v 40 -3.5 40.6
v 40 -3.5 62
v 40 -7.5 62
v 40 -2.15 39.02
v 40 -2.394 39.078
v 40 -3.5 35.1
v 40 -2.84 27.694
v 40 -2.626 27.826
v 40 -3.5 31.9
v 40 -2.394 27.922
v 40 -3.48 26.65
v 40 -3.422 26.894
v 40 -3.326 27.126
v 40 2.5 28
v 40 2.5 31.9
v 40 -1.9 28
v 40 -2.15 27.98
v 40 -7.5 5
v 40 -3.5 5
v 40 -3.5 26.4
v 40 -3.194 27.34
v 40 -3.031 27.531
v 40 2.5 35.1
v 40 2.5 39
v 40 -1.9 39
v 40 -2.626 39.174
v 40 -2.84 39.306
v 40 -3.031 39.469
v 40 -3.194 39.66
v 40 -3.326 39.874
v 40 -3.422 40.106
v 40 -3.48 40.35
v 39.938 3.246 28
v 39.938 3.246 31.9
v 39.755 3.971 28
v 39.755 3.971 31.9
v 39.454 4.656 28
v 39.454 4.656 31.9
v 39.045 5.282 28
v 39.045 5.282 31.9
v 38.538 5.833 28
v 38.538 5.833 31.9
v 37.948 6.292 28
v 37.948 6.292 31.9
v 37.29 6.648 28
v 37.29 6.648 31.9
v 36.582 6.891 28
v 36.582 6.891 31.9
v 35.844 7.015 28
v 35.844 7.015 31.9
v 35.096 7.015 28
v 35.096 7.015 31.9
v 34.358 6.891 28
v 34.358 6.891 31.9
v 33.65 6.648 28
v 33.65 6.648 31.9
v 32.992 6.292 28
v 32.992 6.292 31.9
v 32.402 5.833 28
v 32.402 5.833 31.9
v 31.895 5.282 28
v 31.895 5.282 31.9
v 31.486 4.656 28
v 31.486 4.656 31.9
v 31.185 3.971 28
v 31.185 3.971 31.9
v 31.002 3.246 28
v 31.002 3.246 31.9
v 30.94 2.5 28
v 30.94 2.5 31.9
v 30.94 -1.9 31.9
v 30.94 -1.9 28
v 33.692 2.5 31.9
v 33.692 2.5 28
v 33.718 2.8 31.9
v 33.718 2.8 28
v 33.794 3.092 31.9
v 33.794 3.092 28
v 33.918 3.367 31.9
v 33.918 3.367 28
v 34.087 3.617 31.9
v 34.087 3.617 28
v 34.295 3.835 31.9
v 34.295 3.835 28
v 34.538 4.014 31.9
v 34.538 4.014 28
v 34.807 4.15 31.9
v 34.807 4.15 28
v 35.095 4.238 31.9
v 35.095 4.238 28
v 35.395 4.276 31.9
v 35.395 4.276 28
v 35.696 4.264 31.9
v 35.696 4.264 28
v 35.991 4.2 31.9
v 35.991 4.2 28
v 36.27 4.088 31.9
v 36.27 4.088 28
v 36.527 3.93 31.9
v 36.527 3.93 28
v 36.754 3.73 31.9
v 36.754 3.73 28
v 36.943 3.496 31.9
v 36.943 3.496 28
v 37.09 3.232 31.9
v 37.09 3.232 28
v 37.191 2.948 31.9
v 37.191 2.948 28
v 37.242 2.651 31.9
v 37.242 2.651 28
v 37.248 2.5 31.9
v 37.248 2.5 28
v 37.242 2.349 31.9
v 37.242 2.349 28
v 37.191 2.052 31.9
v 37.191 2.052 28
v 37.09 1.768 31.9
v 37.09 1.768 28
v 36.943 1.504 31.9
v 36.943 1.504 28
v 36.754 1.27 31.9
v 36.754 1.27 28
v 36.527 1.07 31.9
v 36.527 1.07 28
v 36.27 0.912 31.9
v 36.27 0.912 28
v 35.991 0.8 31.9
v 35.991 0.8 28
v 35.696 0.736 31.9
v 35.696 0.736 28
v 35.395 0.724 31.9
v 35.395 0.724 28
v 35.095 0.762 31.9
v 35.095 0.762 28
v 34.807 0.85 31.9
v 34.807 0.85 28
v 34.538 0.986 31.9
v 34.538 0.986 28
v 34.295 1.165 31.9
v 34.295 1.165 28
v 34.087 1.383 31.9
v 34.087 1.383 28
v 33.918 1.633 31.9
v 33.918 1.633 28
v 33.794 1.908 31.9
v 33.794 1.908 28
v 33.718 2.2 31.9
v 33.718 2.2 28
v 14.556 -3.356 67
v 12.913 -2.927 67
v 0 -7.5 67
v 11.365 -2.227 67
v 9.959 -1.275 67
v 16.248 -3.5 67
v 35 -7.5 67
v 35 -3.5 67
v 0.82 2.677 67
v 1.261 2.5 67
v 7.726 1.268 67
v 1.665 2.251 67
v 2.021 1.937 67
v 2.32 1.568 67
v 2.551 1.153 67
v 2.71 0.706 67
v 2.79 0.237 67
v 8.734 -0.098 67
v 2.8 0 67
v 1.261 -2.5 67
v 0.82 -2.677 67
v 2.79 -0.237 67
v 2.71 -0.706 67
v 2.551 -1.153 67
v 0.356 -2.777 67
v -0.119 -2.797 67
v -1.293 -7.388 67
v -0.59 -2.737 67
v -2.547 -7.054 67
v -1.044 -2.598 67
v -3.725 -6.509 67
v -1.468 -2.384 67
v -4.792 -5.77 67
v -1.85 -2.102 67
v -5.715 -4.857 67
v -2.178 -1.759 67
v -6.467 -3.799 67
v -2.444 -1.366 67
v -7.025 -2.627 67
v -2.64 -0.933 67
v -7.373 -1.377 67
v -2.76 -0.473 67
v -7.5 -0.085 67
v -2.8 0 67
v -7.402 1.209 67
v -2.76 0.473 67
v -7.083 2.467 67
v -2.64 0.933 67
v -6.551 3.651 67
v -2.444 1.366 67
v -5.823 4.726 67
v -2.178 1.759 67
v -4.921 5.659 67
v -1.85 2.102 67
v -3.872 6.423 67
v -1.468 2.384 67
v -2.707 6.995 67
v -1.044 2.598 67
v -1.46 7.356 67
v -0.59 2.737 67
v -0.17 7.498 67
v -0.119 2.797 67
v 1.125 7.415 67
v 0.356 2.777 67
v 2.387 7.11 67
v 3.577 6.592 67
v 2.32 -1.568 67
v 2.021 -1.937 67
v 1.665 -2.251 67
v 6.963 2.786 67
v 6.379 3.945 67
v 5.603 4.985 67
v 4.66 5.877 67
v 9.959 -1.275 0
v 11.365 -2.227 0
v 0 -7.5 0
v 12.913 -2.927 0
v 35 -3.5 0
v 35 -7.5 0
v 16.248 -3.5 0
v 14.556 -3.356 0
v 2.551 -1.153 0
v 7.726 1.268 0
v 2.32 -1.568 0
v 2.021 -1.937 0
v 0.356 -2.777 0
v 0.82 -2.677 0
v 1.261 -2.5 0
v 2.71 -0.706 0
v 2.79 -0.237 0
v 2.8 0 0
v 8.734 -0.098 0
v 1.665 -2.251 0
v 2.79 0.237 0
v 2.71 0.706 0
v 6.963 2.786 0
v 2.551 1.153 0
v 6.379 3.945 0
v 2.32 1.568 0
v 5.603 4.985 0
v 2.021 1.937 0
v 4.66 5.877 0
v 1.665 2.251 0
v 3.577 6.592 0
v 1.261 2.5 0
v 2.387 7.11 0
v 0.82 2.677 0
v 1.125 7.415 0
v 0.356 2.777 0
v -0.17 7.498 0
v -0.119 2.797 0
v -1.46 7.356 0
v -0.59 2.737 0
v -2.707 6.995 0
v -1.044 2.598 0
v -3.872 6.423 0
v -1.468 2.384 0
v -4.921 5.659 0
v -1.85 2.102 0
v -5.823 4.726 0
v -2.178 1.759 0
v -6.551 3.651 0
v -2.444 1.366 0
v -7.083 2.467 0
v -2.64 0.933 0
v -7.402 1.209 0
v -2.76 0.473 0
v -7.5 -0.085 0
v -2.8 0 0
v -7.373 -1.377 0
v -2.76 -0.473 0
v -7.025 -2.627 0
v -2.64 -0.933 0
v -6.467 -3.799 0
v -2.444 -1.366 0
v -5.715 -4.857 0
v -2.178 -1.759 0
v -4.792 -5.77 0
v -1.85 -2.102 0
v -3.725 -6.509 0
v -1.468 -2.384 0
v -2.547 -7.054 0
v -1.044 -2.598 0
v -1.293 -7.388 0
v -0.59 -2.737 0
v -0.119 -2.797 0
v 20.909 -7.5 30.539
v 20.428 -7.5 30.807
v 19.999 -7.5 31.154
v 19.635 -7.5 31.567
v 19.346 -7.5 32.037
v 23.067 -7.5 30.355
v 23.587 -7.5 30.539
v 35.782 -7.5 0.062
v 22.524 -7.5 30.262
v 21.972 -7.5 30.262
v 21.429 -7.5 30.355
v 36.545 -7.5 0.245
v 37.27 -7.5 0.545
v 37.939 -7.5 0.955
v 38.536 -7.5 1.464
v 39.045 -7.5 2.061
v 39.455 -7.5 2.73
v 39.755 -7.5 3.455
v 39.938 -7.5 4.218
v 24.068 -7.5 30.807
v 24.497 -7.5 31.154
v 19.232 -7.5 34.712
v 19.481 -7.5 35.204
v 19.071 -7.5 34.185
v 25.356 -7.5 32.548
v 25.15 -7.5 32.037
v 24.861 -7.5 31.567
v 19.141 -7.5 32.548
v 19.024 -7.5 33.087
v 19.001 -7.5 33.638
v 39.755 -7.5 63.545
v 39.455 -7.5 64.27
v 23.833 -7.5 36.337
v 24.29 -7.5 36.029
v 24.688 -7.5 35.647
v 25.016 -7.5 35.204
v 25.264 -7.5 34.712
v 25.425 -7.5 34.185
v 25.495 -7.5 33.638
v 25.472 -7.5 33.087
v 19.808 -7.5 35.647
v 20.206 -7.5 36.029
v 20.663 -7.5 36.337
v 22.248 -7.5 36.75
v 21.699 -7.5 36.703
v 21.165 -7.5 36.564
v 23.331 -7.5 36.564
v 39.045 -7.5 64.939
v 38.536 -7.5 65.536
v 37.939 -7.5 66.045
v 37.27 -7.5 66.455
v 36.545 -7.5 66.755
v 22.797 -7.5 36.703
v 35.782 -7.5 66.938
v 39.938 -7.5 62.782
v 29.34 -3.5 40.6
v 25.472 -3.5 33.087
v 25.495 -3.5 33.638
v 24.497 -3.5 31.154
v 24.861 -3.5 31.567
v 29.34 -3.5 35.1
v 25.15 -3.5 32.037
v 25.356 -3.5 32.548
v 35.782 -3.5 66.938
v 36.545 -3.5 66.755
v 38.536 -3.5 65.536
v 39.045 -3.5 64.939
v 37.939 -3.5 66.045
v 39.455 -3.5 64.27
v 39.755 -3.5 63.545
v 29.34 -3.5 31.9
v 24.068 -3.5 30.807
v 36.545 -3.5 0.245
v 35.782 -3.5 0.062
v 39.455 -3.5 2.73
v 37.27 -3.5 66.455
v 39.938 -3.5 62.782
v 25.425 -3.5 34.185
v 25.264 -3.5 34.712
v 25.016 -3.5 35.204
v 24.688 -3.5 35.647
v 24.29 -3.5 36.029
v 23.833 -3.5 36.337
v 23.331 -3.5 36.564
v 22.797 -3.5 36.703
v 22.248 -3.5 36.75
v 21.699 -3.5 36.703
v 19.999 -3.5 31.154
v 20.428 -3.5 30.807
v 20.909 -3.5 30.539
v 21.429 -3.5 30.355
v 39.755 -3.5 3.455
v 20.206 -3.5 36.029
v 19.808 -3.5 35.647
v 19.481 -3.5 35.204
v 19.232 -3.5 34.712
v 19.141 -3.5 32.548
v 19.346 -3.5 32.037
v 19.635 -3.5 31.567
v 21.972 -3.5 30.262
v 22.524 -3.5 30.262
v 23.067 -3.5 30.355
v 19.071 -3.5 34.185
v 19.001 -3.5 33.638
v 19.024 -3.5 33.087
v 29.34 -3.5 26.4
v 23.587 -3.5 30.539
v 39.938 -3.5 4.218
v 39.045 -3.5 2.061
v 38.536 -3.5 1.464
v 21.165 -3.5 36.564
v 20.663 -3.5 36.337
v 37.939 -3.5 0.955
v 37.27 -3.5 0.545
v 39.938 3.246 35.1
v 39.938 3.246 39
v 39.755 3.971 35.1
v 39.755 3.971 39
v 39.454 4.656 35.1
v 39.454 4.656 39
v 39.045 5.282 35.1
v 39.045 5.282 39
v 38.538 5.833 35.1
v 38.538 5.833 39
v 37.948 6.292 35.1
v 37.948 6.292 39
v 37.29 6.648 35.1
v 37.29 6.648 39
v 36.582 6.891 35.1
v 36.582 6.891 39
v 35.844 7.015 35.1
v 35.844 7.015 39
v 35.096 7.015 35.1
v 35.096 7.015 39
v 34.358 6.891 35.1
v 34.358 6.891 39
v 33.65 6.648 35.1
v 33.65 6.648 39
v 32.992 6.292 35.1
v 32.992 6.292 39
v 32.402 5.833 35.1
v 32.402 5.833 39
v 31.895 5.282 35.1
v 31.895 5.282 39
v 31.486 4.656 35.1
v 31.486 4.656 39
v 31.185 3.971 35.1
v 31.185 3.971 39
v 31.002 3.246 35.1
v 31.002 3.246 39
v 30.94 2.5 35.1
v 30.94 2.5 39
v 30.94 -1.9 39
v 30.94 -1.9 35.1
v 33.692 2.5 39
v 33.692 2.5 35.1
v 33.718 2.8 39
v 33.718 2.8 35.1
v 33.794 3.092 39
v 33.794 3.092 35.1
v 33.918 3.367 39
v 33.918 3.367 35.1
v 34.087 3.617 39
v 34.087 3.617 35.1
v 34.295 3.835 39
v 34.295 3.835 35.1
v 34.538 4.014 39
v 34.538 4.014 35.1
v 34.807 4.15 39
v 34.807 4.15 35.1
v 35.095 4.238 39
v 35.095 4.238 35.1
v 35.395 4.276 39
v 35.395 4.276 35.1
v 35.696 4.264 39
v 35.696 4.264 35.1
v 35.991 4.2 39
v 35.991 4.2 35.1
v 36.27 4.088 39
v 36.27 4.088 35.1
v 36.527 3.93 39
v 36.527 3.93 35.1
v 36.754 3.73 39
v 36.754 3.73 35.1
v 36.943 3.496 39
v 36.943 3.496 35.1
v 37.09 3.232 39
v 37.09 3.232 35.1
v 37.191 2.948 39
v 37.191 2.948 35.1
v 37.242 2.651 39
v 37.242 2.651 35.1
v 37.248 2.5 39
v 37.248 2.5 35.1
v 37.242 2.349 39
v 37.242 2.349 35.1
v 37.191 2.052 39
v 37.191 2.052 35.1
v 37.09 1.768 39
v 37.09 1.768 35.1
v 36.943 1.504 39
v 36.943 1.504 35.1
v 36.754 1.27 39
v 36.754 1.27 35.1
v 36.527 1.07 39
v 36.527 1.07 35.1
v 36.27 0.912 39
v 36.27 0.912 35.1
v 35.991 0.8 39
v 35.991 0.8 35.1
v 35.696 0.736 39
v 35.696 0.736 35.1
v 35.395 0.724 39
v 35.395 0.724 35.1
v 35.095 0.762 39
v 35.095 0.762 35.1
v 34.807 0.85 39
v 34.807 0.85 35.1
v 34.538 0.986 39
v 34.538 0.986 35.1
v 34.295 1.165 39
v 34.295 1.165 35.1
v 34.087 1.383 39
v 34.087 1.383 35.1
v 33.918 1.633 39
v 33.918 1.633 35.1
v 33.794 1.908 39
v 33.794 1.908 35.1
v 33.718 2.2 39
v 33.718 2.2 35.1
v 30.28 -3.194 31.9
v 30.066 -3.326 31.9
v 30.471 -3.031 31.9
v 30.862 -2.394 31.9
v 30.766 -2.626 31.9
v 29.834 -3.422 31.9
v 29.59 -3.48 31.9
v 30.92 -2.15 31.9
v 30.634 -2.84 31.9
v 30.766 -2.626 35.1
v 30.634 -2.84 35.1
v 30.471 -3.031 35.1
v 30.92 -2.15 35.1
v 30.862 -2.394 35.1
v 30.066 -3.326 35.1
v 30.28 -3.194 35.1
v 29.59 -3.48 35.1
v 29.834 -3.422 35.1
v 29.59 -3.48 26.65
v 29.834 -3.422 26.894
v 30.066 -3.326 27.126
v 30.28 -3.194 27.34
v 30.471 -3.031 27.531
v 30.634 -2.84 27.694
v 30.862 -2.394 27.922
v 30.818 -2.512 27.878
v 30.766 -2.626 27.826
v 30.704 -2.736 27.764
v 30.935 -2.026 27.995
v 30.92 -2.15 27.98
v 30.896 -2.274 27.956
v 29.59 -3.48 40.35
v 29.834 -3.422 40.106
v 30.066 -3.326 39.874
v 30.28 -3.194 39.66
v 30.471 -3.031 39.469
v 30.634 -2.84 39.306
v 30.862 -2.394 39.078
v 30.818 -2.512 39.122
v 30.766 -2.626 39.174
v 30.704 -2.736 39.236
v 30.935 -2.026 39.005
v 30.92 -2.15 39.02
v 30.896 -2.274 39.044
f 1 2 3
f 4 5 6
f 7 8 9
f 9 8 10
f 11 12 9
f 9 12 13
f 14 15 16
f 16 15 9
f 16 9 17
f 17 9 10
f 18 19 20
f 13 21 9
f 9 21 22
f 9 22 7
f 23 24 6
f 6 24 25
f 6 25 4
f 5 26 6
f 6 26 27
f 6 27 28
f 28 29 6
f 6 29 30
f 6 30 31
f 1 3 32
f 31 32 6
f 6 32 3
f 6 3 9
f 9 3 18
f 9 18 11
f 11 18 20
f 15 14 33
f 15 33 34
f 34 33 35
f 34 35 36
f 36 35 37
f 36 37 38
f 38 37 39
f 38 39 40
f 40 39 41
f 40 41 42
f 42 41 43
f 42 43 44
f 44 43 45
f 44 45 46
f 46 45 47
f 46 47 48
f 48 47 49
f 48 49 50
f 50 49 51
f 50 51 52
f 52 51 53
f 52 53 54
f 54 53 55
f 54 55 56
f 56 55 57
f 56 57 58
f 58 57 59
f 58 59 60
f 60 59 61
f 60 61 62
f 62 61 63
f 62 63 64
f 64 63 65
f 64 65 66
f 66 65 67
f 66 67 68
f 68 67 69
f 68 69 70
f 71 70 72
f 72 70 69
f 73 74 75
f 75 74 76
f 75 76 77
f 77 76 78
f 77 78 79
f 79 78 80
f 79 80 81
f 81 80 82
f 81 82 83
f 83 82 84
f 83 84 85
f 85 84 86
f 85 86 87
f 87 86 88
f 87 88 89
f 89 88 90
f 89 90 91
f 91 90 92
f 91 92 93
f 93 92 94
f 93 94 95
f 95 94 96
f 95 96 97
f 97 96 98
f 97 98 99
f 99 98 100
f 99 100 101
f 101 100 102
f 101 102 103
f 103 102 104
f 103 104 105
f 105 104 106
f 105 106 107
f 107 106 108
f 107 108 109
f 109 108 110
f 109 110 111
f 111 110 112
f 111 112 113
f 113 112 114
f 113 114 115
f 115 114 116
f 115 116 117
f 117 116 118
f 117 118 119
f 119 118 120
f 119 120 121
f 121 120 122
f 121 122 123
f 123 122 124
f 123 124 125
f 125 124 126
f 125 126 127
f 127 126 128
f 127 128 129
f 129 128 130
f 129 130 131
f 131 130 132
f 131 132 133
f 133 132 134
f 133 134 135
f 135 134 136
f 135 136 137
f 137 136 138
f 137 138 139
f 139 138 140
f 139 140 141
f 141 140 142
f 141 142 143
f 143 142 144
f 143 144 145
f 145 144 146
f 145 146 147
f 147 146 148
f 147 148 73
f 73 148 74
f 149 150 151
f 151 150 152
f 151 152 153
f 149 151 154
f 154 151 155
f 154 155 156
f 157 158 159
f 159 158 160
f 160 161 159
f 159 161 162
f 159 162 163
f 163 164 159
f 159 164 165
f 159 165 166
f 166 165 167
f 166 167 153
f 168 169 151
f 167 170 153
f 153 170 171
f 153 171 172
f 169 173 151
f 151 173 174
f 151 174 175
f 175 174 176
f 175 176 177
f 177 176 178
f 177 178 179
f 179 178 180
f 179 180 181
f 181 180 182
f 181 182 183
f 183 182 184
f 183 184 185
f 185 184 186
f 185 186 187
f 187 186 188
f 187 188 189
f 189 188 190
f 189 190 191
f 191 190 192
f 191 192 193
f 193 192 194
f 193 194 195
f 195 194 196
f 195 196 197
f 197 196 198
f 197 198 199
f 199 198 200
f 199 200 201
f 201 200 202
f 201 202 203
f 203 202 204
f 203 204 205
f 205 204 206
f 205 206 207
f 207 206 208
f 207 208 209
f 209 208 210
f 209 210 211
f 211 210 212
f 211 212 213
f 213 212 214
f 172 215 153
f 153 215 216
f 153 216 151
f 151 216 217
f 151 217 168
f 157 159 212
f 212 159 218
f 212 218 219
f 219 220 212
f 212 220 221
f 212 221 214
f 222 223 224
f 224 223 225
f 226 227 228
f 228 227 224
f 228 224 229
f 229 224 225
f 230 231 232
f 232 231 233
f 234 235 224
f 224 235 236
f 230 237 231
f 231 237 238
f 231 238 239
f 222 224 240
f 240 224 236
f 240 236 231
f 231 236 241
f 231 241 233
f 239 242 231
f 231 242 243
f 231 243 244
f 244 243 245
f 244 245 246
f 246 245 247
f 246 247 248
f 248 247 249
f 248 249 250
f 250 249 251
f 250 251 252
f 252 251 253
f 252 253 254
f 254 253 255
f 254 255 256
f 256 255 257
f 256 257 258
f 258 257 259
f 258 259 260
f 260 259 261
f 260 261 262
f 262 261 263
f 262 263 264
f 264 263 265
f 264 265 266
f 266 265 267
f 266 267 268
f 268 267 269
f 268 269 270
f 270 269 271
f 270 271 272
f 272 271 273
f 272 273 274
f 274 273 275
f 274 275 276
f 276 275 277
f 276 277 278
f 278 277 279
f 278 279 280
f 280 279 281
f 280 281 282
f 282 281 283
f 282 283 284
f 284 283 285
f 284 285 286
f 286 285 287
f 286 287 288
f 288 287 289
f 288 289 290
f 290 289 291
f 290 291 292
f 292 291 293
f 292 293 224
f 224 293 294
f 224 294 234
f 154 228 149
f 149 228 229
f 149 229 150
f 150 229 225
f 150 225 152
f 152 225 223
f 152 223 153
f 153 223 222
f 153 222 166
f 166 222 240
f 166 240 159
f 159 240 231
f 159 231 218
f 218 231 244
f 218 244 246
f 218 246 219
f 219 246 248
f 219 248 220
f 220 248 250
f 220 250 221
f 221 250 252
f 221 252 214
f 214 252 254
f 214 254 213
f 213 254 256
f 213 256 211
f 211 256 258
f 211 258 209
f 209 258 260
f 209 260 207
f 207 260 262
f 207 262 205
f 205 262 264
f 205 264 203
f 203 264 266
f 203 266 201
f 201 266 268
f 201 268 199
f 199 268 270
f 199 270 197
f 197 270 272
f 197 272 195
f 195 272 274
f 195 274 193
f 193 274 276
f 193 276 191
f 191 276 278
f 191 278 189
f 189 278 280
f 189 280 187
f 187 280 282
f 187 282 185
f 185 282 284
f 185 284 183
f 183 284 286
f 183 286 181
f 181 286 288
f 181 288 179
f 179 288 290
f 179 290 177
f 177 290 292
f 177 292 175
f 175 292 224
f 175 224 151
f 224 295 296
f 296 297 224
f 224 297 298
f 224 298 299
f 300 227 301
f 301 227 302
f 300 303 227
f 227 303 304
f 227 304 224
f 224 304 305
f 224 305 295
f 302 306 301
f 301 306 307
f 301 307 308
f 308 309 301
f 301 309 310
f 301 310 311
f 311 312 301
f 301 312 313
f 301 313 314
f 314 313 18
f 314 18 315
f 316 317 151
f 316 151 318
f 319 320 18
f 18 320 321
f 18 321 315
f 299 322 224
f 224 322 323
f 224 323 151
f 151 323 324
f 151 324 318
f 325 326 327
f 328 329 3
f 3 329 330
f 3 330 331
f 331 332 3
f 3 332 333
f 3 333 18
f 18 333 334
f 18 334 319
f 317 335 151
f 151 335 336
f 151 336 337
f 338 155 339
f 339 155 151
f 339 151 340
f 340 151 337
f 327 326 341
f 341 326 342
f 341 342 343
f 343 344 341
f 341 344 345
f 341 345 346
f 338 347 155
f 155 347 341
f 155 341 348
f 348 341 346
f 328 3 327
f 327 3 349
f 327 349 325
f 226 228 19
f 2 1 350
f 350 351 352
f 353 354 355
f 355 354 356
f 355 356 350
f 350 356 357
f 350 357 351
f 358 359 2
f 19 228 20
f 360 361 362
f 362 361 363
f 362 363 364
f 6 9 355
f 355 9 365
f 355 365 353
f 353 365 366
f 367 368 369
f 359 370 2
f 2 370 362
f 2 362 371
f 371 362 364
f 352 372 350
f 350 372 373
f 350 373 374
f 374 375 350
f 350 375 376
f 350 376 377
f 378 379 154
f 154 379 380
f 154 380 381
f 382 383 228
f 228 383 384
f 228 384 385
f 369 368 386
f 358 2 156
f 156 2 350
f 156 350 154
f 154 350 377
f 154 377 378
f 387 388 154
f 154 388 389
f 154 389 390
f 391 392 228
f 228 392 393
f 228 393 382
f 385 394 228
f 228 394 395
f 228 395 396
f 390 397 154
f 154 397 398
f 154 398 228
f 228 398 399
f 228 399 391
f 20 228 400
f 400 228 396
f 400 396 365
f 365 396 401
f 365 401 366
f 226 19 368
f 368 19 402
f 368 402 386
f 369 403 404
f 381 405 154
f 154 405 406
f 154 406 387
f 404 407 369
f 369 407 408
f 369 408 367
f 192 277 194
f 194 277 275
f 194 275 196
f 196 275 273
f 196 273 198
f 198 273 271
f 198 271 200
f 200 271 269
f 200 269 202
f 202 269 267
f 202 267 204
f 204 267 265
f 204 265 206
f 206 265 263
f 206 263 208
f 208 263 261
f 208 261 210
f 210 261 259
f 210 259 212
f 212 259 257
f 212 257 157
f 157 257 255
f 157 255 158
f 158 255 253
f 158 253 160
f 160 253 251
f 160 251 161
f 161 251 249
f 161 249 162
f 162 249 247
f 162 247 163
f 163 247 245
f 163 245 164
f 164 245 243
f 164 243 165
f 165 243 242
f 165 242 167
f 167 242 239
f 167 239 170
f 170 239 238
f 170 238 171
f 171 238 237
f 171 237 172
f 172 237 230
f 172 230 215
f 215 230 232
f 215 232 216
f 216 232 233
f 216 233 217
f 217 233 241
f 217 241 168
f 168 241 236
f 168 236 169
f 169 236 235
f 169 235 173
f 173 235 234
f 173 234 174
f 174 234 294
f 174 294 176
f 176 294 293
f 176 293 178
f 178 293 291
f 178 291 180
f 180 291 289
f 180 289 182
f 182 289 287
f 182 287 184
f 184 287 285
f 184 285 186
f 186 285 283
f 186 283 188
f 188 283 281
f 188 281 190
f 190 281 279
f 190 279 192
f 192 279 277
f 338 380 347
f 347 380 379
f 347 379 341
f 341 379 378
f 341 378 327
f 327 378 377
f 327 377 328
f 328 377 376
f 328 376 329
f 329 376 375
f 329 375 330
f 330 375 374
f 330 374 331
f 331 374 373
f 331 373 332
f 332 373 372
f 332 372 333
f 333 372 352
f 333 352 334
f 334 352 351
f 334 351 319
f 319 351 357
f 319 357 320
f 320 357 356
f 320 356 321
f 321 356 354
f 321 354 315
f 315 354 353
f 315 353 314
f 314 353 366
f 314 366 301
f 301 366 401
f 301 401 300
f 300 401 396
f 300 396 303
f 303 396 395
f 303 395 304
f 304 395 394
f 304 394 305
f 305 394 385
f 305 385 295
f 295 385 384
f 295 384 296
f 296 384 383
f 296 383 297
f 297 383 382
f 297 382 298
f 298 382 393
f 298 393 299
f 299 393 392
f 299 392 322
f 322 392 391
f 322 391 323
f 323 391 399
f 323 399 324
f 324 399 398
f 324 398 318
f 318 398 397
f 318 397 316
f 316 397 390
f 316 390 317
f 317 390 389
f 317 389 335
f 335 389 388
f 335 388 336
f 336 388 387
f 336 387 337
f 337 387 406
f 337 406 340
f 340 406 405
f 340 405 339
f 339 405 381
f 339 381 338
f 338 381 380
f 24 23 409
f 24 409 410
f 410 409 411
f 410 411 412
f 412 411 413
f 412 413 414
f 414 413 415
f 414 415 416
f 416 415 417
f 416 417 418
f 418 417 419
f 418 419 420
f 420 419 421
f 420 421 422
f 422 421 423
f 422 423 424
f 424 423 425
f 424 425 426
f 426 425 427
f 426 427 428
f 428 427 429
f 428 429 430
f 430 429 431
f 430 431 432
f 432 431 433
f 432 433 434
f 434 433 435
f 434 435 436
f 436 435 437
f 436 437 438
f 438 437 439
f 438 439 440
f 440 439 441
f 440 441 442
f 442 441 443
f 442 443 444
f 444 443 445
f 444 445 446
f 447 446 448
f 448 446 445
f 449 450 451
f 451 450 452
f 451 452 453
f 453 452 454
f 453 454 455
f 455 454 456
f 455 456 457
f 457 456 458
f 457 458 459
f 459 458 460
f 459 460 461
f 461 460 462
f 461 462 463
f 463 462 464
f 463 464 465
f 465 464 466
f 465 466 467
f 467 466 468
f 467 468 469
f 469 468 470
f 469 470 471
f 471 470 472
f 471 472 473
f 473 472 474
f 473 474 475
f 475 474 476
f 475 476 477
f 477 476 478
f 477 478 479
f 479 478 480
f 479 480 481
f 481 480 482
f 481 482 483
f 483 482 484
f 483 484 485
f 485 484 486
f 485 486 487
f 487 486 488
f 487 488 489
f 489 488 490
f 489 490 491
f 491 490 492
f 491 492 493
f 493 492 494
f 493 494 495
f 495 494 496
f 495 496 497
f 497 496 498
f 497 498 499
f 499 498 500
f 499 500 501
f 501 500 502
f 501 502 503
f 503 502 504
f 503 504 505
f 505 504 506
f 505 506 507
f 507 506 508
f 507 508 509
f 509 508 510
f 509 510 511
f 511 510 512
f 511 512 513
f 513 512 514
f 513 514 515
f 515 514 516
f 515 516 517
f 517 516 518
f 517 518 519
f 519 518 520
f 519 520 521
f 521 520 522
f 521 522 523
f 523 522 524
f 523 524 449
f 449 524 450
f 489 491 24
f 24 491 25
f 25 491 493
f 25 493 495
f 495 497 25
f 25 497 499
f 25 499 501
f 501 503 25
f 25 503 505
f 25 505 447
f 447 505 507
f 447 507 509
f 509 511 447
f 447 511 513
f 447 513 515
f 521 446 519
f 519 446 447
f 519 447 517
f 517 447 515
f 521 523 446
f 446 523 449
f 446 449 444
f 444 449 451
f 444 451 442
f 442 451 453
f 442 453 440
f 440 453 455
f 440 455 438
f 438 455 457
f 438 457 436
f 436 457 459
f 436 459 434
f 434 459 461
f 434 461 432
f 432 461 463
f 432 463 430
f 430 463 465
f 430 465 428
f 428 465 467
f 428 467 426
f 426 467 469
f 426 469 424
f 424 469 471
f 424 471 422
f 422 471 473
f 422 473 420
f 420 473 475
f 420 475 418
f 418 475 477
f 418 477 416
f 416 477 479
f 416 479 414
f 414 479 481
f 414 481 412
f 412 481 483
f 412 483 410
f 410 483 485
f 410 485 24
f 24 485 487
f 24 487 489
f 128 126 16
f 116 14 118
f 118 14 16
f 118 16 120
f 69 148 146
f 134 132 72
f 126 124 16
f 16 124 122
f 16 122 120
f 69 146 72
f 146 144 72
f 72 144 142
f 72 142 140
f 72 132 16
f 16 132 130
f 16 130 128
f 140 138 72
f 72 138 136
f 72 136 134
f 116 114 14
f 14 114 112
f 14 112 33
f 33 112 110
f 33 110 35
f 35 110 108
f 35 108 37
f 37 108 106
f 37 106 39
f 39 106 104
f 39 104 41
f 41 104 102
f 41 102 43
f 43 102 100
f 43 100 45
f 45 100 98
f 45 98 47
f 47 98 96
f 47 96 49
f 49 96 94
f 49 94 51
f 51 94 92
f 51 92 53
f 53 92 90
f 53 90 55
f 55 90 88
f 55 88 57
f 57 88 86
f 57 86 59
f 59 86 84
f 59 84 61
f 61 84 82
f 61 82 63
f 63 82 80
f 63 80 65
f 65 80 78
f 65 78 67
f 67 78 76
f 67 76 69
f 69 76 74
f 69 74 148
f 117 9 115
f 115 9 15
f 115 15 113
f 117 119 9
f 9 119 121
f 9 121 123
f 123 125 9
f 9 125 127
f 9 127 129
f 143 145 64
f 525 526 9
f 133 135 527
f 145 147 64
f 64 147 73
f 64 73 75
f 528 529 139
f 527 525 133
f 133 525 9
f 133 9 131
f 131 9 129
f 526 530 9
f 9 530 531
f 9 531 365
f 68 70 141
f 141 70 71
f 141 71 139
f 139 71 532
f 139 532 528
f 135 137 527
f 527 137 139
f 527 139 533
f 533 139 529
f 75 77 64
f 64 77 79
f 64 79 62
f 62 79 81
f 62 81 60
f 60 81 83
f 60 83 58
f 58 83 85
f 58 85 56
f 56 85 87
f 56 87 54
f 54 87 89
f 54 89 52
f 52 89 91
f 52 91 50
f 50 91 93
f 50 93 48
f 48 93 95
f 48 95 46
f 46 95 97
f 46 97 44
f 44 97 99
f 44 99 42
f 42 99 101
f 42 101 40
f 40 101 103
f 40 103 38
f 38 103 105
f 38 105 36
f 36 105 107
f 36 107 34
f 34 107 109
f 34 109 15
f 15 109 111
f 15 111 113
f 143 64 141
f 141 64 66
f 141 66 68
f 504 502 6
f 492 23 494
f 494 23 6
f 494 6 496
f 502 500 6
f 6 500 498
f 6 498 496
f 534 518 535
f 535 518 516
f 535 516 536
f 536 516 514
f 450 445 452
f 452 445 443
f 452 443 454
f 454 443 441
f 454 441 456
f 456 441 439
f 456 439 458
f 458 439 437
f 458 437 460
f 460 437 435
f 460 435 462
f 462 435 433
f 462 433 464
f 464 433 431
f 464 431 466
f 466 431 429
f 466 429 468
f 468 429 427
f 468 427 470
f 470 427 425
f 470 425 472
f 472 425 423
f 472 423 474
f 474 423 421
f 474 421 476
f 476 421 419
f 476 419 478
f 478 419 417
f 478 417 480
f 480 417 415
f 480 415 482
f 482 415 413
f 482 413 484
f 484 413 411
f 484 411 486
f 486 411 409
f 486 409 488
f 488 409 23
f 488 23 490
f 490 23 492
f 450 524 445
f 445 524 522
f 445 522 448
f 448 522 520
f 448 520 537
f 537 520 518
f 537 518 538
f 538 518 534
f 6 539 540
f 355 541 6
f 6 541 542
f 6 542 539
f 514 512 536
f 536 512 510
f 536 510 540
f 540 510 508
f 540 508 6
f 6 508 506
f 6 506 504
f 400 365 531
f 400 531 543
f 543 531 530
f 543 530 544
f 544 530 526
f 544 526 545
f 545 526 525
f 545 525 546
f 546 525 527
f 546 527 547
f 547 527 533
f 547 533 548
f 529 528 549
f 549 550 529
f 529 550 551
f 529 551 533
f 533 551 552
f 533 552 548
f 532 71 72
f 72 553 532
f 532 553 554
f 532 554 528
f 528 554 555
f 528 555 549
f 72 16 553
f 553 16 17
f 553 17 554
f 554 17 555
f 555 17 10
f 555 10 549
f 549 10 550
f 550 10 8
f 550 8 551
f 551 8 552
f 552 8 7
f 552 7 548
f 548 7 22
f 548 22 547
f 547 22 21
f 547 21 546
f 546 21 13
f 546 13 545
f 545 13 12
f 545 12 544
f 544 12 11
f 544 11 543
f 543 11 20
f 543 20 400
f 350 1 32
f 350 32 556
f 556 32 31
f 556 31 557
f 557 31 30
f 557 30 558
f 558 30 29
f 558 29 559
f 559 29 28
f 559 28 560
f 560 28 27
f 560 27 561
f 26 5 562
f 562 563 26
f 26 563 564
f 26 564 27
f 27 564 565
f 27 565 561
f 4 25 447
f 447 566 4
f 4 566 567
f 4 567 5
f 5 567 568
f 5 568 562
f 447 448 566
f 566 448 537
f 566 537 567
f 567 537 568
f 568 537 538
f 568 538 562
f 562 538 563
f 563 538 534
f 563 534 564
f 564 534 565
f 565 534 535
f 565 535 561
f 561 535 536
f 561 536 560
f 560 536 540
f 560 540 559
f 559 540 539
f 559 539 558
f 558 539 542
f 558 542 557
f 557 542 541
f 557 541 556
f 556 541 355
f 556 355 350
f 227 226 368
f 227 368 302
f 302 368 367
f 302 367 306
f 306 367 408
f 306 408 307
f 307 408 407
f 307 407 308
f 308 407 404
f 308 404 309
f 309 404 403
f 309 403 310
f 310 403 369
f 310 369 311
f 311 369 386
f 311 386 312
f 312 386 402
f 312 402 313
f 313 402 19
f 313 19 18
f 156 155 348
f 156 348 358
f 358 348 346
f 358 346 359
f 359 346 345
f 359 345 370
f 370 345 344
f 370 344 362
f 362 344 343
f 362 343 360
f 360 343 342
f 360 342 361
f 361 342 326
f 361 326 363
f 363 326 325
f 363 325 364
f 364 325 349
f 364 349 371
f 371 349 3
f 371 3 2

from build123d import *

# Parameters (mm, degrees)
SKETCH1_R           = 2.8
BOSS_EXTRUDE1_DEPTH = 67
SKETCH2_R           = 3.25
CUT_EXTRUDE1_DEPTH  = 100
SKETCH3_R           = 1.778
BOSS_EXTRUDE2_DEPTH = 5.5
SKETCH3_3_R         = 1.778
CUT_EXTRUDE2_DEPTH  = 1.6
FILLET1_R           = 1.6
FILLET2_R           = 5


with BuildPart() as part:
    # Sketch1 → Boss-Extrude1 (new body)
    with BuildSketch(Plane.XY):
        with BuildLine():
            Line((16.248076809, -3.5), (40, -3.5))
            Line((40, -3.5), (40, -7.5))
            Line((40, -7.5), (0, -7.5))
            ThreePointArc((0, -7.5), (-6.210590034, 4.204589329), (6.96346149, 2.785714286))
            ThreePointArc((6.96346149, 2.785714286), (10.641957703, -1.780786712), (16.248076809, -3.5))
        make_face()
        Circle(SKETCH1_R, mode=Mode.SUBTRACT)
    extrude(amount=BOSS_EXTRUDE1_DEPTH)

    # Sketch2 → Cut-Extrude1 (cut)
    with BuildSketch(Plane(origin=(0, -3.5, 0), x_dir=(1, 0, 0), z_dir=(0, 1, 0))):
        with Locations((22.248076809, -33.5)):
            Circle(SKETCH2_R)
    extrude(amount=-CUT_EXTRUDE1_DEPTH, mode=Mode.SUBTRACT)

    # Sketch3 → Boss-Extrude2 (add, symmetric)
    with BuildSketch(Plane.XY.offset(33.5)):
        with BuildLine():
            Line((30.94, -3.5), (40, -3.5))
            Line((40, -3.5), (40, 2.5))
            ThreePointArc((40, 2.5), (35.47, 7.03), (30.94, 2.5))
            Line((30.94, 2.5), (30.94, -3.5))
        make_face()
        with Locations((35.47, 2.5)):
            Circle(SKETCH3_R, mode=Mode.SUBTRACT)
    extrude(amount=BOSS_EXTRUDE2_DEPTH, both=True)

    # Sketch3<3> → Cut-Extrude2 (cut, symmetric)
    with BuildSketch(Plane.XY.offset(33.5)):
        with BuildLine():
            Line((30.94, -3.5), (40, -3.5))
            Line((40, -3.5), (40, 2.5))
            ThreePointArc((40, 2.5), (35.47, 7.03), (30.94, 2.5))
            Line((30.94, 2.5), (30.94, -3.5))
        make_face()
        with Locations((35.47, 2.5)):
            Circle(SKETCH3_3_R, mode=Mode.SUBTRACT)
    extrude(amount=CUT_EXTRUDE2_DEPTH, both=True, mode=Mode.SUBTRACT)

    # Fillet1
    fillet1_edges = [part.edges().sort_by_distance(p)[0] for p in [
        (35.47, -3.5, 28),
        (30.94, -3.5, 29.95),
        (30.94, -3.5, 37.05),
        (35.47, -3.5, 39),
    ]]
    fillet(fillet1_edges, radius=FILLET1_R)

    # Fillet2
    fillet2_edges = [part.edges().sort_by_distance(p)[0] for p in [
        (40, -5.5, 0),
        (40, -5.5, 67),
    ]]
    fillet(fillet2_edges, radius=FILLET2_R)


solid = part.part
